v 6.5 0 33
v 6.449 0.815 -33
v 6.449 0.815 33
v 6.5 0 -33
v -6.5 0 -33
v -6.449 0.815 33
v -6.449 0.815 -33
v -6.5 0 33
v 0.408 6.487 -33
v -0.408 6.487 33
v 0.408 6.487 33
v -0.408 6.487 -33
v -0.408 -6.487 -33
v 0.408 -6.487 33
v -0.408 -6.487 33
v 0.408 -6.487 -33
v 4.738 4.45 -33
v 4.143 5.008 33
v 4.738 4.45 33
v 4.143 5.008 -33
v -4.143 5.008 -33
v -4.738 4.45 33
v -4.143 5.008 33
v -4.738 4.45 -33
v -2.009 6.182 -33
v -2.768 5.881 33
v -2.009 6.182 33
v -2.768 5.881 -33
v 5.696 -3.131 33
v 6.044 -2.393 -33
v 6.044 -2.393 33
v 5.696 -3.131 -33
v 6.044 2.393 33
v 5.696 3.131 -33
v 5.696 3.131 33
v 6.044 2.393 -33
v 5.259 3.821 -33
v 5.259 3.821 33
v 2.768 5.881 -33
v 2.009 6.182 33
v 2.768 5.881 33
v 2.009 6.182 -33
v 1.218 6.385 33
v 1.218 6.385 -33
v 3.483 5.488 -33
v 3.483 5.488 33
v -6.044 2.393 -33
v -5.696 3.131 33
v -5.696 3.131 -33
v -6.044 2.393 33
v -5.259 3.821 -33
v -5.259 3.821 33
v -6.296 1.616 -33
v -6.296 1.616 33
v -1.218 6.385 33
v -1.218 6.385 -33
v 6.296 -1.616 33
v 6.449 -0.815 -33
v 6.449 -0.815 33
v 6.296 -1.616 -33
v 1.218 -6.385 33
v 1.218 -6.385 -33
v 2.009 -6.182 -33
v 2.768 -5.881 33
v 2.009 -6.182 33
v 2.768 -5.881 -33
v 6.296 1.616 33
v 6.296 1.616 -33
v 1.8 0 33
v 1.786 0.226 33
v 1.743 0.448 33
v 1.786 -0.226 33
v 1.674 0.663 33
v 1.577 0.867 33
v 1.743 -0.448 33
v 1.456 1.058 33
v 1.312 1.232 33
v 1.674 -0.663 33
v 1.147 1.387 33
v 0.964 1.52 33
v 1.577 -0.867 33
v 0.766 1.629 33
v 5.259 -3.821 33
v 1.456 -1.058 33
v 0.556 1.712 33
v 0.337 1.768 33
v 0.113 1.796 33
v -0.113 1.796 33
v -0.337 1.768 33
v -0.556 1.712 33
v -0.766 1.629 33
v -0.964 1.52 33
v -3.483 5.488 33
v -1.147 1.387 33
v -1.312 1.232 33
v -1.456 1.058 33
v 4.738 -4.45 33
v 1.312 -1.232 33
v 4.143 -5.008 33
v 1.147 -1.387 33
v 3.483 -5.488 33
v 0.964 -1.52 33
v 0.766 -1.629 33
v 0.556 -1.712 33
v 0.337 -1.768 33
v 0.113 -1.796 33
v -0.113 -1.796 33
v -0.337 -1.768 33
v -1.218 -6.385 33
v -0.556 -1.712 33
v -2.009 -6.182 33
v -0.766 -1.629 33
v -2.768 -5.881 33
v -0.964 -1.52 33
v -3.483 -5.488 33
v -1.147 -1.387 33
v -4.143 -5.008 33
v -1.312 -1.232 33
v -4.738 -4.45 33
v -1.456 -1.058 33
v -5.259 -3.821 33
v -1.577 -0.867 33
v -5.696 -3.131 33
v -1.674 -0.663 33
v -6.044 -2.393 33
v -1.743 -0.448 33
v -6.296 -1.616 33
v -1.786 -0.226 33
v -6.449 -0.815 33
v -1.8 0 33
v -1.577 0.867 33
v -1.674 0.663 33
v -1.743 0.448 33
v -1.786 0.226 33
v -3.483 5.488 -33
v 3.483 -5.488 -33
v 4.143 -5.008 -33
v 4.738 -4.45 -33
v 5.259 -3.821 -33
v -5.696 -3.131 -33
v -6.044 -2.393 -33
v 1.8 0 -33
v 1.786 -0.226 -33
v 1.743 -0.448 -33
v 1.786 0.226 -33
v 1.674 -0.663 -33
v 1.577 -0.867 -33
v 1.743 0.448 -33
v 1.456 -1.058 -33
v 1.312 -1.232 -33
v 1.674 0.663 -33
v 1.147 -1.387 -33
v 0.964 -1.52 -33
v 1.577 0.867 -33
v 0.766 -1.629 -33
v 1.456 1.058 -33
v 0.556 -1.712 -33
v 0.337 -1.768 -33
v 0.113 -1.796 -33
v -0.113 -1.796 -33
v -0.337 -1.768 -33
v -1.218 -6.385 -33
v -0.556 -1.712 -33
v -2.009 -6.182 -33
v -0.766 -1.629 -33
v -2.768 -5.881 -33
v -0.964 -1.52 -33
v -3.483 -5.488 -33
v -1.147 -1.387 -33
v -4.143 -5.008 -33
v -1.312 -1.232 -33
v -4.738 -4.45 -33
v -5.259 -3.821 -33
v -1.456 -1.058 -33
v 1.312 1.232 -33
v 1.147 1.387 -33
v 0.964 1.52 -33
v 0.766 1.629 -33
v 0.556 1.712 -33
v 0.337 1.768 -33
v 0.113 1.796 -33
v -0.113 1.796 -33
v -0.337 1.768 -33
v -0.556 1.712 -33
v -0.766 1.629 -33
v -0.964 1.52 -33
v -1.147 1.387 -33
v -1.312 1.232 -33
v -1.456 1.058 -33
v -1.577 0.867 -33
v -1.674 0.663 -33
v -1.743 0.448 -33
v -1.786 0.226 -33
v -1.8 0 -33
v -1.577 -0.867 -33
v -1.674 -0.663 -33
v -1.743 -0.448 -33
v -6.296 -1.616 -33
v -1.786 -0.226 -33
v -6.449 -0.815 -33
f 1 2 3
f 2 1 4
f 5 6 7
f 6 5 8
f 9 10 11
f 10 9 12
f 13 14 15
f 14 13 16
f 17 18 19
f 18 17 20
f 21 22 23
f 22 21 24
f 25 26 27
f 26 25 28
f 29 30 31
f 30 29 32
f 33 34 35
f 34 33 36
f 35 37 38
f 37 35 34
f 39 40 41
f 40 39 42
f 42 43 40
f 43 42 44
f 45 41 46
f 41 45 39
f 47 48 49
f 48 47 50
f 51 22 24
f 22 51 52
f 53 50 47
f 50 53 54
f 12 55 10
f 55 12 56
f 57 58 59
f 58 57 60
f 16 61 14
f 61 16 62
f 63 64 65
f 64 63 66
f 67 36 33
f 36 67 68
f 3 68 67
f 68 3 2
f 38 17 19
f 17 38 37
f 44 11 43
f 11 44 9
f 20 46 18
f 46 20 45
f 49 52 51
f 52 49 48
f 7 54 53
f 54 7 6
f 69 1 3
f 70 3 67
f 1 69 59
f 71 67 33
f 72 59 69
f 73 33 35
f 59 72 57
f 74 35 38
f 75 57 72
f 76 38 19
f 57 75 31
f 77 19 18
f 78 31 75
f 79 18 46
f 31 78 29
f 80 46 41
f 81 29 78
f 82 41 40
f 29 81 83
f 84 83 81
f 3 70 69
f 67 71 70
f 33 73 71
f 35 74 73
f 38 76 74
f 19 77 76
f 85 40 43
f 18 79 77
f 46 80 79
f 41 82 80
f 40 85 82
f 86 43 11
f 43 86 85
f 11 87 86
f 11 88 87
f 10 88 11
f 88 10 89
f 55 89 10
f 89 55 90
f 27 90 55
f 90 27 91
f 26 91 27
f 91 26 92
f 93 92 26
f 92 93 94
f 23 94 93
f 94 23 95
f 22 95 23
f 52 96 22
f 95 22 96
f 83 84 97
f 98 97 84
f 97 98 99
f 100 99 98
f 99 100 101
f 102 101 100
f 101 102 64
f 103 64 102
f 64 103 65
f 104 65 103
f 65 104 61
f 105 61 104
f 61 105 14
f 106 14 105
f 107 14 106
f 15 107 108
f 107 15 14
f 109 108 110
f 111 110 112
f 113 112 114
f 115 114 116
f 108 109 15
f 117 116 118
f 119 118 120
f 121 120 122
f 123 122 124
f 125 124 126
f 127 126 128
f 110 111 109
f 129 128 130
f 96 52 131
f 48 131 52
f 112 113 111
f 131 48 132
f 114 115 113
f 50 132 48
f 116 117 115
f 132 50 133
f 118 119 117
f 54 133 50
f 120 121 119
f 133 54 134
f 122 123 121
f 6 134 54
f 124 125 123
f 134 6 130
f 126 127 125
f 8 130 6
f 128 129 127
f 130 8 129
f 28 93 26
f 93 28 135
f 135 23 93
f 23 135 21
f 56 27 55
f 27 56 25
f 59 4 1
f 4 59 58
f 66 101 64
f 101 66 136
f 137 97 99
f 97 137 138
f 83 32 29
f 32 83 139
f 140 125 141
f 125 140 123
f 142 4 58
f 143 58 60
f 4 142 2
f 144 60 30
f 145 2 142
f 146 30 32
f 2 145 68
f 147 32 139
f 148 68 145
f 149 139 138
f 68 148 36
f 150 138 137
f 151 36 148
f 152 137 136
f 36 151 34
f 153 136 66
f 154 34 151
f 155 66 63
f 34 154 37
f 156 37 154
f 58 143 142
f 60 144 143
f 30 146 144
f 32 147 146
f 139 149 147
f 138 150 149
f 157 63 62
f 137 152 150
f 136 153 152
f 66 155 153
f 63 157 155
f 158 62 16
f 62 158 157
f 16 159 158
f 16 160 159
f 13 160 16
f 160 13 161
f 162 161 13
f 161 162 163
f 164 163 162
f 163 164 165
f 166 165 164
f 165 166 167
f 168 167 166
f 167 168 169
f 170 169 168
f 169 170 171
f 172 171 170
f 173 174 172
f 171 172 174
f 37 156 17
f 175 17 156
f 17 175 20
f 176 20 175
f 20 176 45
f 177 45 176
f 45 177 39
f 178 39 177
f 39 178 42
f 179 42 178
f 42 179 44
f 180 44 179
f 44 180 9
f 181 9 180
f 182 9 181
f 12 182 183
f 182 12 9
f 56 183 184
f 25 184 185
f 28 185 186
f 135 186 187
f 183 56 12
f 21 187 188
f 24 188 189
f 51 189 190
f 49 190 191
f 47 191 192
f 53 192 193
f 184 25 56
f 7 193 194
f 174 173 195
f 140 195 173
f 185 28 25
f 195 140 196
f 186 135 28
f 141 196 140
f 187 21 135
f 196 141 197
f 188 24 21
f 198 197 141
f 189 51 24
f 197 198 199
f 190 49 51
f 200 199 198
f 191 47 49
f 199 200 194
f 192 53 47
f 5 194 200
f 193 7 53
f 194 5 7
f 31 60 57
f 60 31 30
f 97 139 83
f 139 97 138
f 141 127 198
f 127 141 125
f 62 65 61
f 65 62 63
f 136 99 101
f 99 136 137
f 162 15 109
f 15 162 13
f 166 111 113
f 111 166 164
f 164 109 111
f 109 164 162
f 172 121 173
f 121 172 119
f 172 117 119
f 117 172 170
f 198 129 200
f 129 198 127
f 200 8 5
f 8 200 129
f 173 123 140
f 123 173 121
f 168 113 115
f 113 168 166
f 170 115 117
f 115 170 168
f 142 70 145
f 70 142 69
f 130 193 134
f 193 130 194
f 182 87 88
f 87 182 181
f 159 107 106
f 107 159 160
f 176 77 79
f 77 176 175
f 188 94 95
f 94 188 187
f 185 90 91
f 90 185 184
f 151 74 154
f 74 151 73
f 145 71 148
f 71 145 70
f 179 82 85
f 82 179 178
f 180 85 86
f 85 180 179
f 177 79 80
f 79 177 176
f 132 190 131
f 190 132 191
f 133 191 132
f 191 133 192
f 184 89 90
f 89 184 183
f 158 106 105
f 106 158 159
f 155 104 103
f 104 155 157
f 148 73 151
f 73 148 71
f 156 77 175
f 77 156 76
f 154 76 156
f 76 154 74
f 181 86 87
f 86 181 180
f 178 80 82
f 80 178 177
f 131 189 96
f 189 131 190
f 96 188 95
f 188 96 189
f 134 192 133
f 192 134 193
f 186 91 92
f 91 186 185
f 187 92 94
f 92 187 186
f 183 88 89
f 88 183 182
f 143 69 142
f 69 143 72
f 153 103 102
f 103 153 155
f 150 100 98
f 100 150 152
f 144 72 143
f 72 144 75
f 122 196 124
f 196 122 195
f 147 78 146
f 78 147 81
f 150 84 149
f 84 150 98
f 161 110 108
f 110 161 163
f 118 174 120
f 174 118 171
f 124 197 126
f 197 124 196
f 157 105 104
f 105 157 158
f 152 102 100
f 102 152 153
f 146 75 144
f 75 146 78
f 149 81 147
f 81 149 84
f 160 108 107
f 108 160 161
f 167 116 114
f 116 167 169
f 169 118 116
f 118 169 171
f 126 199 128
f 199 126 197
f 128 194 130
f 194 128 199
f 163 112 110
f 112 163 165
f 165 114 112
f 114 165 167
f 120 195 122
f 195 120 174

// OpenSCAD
$fn = 50;


difference() {
	union() {
		translate(v = [0, 0, -33.0000000000]) {
			cylinder(h = 66, r = 6.5000000000);
		}
	}
	union() {
		translate(v = [0, 0, -100.0000000000]) {
			cylinder(h = 200, r = 1.8000000000);
		}
	}
}
